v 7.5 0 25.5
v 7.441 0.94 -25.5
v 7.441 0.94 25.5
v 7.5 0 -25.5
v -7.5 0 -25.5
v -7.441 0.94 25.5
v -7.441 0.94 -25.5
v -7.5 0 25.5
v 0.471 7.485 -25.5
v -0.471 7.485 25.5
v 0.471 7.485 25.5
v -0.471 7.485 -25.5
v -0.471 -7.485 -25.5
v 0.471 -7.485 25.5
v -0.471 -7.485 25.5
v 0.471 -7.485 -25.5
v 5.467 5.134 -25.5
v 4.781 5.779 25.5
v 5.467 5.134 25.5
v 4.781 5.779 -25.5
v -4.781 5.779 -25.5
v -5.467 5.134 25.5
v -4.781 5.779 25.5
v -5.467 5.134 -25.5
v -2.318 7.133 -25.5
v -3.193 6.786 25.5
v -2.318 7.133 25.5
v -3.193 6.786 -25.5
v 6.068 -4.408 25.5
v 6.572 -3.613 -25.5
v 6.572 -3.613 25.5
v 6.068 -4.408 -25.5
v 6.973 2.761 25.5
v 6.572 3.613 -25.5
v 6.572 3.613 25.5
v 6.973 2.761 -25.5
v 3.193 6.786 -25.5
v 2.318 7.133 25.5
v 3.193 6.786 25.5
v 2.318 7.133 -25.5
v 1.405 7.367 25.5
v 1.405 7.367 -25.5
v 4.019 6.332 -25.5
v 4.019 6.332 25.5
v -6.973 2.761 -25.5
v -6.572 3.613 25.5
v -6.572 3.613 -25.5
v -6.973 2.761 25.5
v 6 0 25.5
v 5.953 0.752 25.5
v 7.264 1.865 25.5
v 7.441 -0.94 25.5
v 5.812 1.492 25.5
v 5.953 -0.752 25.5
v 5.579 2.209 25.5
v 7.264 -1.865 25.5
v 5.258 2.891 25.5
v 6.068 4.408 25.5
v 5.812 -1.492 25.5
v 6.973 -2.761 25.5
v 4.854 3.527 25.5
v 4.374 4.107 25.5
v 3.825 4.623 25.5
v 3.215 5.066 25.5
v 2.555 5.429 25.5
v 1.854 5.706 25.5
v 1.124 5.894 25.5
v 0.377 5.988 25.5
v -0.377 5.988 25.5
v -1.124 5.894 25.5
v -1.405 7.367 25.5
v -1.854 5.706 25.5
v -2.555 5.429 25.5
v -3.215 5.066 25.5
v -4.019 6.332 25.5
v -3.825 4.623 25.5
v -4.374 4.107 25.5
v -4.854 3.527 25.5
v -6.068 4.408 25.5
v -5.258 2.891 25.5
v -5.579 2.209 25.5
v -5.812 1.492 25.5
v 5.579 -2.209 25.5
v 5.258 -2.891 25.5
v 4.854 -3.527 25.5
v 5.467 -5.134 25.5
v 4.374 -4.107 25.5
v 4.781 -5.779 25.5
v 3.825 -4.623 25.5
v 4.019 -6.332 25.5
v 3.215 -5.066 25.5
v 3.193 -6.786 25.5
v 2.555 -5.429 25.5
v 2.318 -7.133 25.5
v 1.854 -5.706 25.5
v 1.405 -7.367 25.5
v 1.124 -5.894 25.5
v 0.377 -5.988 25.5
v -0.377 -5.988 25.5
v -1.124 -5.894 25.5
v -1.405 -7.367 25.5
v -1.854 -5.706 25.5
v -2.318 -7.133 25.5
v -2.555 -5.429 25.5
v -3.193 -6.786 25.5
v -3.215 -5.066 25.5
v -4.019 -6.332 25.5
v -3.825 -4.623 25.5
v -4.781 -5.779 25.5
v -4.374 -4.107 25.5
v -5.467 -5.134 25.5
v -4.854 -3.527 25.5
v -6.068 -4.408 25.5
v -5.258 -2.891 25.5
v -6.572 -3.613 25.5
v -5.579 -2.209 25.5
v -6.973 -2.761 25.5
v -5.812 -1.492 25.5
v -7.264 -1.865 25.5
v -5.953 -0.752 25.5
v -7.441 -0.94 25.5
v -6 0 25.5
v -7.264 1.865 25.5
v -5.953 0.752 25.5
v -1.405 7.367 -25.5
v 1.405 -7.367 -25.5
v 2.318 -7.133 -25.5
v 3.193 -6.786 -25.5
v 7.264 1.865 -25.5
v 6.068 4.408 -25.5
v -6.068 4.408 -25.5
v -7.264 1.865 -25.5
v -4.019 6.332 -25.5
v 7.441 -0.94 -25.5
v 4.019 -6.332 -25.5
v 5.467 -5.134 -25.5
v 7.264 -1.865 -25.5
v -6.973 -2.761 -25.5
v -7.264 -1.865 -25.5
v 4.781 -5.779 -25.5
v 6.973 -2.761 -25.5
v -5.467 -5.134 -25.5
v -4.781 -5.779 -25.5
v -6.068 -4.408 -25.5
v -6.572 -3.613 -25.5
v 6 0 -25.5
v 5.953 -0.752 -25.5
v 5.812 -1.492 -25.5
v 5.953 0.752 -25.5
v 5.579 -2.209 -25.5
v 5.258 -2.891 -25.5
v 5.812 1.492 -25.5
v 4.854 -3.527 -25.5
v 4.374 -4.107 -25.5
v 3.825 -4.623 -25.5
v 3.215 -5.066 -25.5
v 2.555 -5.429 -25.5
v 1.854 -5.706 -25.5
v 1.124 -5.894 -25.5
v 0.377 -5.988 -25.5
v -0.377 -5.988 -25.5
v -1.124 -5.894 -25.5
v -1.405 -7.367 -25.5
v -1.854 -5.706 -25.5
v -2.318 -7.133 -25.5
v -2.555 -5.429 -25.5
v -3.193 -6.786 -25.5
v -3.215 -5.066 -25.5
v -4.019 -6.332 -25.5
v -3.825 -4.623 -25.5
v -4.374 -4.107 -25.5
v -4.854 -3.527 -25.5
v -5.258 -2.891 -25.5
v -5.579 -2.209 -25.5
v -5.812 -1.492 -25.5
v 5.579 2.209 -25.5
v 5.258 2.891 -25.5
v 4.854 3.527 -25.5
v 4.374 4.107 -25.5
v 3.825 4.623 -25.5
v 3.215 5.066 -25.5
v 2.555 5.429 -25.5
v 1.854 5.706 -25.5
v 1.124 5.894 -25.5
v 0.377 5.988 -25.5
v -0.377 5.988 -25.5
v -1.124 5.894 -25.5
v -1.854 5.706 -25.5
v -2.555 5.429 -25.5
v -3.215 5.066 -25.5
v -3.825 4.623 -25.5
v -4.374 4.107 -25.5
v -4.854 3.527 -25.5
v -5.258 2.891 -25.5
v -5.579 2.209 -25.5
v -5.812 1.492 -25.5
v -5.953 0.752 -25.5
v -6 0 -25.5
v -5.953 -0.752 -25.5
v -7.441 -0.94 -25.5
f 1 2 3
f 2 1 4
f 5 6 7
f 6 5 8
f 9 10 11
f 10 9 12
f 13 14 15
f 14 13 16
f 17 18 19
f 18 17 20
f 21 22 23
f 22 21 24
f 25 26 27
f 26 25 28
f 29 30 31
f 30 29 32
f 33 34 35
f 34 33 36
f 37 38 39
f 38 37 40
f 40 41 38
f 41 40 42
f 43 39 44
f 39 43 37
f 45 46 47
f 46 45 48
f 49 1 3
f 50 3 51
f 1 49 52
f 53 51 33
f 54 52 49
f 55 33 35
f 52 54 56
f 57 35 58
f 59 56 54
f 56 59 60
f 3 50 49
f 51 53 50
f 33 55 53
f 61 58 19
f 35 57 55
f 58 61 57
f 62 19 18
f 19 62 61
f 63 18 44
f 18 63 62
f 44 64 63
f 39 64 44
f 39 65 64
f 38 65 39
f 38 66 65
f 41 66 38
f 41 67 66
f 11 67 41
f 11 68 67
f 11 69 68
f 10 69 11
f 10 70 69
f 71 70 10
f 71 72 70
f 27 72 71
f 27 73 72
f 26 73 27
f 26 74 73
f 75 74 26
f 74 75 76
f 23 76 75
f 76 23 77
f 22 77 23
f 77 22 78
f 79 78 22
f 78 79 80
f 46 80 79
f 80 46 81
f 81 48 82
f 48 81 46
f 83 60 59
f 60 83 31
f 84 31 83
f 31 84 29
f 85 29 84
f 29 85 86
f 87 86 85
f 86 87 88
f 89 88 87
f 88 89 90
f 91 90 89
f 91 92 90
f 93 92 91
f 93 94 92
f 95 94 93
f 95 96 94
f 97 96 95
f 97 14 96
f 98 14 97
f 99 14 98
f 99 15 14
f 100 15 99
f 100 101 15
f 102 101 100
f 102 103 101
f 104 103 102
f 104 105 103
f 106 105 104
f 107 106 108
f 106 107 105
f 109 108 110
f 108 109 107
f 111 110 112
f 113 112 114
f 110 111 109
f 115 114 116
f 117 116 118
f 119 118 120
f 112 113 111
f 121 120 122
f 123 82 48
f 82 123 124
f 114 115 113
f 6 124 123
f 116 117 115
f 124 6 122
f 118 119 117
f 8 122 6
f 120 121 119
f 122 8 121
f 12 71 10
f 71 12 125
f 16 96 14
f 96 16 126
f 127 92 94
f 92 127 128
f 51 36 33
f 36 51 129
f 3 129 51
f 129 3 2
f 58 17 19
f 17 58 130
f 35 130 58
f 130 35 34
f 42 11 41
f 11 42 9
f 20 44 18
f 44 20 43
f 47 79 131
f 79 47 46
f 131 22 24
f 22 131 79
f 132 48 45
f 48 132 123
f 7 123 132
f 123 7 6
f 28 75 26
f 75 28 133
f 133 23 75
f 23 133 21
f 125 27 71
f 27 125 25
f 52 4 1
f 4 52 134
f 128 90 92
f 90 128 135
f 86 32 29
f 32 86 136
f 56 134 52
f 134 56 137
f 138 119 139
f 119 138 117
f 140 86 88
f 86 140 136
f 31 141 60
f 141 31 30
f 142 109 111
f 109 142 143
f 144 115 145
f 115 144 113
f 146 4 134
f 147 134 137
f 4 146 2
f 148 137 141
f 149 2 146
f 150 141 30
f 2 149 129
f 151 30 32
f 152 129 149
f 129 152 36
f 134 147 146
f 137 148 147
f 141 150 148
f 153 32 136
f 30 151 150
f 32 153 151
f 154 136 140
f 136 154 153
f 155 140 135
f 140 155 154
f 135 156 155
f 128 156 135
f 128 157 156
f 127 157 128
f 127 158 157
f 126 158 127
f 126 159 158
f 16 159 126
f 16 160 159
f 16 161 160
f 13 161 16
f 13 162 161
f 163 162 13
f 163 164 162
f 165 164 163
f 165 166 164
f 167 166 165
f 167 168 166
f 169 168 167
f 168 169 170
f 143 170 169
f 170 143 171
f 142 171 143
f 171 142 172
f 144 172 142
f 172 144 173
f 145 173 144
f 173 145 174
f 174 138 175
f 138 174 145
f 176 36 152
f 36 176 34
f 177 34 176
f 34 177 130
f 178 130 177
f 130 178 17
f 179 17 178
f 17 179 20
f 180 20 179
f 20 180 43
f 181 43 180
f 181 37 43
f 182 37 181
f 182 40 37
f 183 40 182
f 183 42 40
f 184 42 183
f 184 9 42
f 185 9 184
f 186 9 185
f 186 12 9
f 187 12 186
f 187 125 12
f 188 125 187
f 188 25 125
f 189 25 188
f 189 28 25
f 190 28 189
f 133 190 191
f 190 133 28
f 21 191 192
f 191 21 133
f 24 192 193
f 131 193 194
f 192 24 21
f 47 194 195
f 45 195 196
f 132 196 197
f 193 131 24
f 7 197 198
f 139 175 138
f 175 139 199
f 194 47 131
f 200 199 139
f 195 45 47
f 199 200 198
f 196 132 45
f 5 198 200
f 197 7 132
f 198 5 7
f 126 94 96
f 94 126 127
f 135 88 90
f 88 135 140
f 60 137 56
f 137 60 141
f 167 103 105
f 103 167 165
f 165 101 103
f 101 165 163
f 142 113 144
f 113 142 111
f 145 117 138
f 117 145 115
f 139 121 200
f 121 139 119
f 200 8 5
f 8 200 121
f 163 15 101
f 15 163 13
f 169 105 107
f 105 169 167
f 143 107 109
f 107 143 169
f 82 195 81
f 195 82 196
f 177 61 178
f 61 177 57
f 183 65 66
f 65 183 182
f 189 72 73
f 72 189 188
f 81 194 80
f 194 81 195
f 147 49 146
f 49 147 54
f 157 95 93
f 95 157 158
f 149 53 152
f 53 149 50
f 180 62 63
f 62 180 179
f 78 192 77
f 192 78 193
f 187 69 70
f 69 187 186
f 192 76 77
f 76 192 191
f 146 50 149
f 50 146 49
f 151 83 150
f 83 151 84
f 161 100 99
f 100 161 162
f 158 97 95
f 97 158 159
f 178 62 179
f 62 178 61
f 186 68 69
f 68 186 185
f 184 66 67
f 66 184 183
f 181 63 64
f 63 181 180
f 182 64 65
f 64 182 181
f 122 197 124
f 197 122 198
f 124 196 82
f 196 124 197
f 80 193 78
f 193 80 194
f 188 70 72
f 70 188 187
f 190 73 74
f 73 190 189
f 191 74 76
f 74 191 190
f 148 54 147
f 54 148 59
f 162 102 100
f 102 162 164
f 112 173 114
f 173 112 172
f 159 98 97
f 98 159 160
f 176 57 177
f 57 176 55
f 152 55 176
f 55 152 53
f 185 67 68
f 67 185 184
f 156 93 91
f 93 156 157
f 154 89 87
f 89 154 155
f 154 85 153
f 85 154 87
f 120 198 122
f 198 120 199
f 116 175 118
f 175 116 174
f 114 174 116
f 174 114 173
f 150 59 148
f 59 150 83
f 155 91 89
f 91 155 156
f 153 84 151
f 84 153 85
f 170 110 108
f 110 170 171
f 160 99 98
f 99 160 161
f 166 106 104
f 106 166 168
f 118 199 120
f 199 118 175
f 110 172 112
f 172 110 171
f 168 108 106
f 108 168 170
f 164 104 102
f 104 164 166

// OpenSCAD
$fn = 50;


difference() {
	union() {
		translate(v = [0, 0, -25.5000000000]) {
			cylinder(h = 51, r = 7.5000000000);
		}
	}
	union() {
		translate(v = [0, 0, -100.0000000000]) {
			cylinder(h = 200, r = 6);
		}
	}
}
